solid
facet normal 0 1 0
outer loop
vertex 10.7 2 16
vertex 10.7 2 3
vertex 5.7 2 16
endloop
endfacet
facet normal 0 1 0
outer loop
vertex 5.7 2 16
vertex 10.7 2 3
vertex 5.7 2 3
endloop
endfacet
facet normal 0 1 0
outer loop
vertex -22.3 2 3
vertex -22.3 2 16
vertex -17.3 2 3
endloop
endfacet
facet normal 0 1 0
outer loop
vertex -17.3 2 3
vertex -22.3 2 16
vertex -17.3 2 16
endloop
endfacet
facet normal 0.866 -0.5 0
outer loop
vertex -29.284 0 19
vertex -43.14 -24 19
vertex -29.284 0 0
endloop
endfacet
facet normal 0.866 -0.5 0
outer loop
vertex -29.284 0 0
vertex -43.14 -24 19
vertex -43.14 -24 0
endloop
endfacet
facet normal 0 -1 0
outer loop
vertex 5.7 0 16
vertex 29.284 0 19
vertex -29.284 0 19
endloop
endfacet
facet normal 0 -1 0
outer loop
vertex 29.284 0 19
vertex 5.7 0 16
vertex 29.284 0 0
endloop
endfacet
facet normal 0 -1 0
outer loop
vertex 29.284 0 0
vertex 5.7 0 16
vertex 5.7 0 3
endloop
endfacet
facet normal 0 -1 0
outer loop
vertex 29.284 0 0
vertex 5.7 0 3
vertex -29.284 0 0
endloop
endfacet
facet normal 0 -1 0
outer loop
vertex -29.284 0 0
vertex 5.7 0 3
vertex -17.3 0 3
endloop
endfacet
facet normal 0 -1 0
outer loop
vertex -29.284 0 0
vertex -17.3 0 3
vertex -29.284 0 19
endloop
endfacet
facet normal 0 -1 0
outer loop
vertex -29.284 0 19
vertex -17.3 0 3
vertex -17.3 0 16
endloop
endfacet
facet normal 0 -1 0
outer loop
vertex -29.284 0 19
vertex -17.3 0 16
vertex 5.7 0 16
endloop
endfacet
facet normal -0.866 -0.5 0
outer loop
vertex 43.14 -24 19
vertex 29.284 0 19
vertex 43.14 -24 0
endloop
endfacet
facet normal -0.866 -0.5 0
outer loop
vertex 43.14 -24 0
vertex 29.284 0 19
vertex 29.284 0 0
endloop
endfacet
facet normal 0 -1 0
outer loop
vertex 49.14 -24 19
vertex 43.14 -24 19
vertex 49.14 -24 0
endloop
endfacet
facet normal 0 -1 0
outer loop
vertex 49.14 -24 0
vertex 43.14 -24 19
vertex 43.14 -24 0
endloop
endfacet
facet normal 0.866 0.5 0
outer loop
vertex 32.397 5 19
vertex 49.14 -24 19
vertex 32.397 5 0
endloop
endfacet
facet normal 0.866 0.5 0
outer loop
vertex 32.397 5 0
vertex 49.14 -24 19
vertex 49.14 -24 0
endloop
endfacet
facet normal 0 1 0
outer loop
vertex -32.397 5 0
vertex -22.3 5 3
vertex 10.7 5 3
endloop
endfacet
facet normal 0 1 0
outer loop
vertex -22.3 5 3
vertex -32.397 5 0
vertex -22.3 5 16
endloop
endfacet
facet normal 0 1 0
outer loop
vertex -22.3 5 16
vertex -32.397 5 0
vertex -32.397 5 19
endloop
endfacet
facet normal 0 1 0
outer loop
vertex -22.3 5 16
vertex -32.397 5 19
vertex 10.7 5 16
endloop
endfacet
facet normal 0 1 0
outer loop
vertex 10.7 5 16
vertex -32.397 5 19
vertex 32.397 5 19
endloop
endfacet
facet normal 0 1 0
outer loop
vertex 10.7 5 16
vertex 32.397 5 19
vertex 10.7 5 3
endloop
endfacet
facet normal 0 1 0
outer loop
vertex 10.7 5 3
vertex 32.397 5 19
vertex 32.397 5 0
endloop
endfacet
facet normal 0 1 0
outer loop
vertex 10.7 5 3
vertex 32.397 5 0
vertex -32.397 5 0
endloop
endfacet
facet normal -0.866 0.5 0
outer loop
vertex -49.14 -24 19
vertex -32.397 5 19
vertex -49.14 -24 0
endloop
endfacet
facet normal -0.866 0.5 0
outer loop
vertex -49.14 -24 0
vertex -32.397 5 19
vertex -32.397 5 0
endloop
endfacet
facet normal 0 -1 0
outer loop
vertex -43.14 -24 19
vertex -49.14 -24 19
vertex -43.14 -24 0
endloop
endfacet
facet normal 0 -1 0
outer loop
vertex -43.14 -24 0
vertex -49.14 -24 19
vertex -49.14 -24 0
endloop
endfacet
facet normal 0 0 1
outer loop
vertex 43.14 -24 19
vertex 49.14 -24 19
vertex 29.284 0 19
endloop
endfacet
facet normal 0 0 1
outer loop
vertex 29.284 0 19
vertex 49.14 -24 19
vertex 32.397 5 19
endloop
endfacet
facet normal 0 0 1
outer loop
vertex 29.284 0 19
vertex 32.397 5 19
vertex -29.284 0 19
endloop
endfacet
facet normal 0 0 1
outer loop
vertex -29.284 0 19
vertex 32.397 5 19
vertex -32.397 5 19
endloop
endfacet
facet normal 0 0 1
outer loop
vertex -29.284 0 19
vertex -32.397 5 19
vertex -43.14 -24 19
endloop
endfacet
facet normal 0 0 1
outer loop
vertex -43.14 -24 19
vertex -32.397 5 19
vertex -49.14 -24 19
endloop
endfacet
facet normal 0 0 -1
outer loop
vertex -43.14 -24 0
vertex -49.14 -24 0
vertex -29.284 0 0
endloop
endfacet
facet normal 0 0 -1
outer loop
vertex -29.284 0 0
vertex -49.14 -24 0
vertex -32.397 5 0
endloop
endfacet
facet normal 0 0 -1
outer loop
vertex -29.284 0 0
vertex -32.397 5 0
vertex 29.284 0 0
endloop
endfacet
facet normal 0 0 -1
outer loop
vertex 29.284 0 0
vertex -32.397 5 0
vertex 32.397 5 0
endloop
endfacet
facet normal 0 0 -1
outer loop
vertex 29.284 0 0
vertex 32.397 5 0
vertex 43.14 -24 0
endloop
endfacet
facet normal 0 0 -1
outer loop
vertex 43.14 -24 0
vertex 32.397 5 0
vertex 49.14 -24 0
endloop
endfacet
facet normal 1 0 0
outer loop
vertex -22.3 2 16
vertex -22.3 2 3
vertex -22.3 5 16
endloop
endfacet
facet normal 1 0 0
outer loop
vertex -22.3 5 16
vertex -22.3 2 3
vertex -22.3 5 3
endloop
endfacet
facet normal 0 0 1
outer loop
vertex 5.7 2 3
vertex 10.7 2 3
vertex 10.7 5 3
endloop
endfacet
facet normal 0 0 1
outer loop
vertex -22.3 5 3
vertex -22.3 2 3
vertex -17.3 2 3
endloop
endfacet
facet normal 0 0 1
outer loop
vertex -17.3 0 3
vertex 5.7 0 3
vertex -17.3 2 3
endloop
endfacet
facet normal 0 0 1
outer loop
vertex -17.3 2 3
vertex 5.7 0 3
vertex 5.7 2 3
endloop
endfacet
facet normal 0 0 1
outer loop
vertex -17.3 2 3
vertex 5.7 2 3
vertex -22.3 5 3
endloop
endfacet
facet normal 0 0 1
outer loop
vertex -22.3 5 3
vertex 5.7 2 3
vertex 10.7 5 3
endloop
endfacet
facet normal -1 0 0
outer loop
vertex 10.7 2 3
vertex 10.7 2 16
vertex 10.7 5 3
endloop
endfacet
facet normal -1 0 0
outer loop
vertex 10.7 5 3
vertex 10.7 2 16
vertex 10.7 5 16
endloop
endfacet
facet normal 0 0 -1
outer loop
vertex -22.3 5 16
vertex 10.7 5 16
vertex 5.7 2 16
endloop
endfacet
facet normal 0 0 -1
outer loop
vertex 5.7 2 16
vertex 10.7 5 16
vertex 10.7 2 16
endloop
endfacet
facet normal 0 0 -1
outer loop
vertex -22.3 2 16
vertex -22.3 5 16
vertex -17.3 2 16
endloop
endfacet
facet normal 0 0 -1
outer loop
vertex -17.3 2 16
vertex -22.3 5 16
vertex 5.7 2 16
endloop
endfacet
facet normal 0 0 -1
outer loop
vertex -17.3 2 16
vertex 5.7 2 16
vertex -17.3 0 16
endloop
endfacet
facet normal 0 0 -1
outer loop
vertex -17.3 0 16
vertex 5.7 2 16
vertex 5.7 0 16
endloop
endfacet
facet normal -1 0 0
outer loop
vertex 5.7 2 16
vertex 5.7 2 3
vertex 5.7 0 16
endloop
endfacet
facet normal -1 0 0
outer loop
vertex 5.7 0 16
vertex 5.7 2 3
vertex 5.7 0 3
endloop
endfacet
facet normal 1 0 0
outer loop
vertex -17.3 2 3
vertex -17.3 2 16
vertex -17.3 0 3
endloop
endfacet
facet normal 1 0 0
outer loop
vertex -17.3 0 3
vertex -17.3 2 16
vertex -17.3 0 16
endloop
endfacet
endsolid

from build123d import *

# Parameters (mm, degrees)
BOSS_EXTRUDE1_DEPTH = 19
SKETCH2_W           = 33
SKETCH2_H           = 13
CUT_EXTRUDE1_DEPTH  = 3
CUT_EXTRUDE2_REACH  = 60.752
SKETCH3_W           = 23
SKETCH3_H           = 13


with BuildPart() as part:
    # Sketch1 → Boss-Extrude1 (new body)
    with BuildSketch(Plane.XY):
        Polygon((-29.283593539, 0), (29.283593539, 0), (43.14, -24), (49.14, -24), (32.396842194, 5), (-32.396842194, 5), (-49.14, -24), (-43.14, -24), align=None)
    extrude(amount=BOSS_EXTRUDE1_DEPTH)

    # Sketch2 → Cut-Extrude1 (cut)
    with BuildSketch(Plane(origin=(0, 5, 0), x_dir=(1, 0, 0), z_dir=(0, 1, 0))):
        with Locations((-5.8, -9.5)):
            Rectangle(SKETCH2_W, SKETCH2_H)
    extrude(amount=-CUT_EXTRUDE1_DEPTH, mode=Mode.SUBTRACT)

    # Sketch3 → Cut-Extrude2 (cut, up to next)
    with BuildSketch(Plane(origin=(0, 2, 0), x_dir=(1, 0, 0), z_dir=(0, 1, 0)), mode=Mode.PRIVATE) as cut_extrude2_sk1:
        with Locations((-5.8, -9.5)):
            Rectangle(SKETCH3_W, SKETCH3_H)
    cut_extrude2_tool1 = extrude(cut_extrude2_sk1.sketch, amount=-CUT_EXTRUDE2_REACH, mode=Mode.PRIVATE) & part.part
    add(cut_extrude2_tool1.solids().sort_by_distance((-5.8, 2, 9.5))[0], mode=Mode.SUBTRACT)


solid = part.part
